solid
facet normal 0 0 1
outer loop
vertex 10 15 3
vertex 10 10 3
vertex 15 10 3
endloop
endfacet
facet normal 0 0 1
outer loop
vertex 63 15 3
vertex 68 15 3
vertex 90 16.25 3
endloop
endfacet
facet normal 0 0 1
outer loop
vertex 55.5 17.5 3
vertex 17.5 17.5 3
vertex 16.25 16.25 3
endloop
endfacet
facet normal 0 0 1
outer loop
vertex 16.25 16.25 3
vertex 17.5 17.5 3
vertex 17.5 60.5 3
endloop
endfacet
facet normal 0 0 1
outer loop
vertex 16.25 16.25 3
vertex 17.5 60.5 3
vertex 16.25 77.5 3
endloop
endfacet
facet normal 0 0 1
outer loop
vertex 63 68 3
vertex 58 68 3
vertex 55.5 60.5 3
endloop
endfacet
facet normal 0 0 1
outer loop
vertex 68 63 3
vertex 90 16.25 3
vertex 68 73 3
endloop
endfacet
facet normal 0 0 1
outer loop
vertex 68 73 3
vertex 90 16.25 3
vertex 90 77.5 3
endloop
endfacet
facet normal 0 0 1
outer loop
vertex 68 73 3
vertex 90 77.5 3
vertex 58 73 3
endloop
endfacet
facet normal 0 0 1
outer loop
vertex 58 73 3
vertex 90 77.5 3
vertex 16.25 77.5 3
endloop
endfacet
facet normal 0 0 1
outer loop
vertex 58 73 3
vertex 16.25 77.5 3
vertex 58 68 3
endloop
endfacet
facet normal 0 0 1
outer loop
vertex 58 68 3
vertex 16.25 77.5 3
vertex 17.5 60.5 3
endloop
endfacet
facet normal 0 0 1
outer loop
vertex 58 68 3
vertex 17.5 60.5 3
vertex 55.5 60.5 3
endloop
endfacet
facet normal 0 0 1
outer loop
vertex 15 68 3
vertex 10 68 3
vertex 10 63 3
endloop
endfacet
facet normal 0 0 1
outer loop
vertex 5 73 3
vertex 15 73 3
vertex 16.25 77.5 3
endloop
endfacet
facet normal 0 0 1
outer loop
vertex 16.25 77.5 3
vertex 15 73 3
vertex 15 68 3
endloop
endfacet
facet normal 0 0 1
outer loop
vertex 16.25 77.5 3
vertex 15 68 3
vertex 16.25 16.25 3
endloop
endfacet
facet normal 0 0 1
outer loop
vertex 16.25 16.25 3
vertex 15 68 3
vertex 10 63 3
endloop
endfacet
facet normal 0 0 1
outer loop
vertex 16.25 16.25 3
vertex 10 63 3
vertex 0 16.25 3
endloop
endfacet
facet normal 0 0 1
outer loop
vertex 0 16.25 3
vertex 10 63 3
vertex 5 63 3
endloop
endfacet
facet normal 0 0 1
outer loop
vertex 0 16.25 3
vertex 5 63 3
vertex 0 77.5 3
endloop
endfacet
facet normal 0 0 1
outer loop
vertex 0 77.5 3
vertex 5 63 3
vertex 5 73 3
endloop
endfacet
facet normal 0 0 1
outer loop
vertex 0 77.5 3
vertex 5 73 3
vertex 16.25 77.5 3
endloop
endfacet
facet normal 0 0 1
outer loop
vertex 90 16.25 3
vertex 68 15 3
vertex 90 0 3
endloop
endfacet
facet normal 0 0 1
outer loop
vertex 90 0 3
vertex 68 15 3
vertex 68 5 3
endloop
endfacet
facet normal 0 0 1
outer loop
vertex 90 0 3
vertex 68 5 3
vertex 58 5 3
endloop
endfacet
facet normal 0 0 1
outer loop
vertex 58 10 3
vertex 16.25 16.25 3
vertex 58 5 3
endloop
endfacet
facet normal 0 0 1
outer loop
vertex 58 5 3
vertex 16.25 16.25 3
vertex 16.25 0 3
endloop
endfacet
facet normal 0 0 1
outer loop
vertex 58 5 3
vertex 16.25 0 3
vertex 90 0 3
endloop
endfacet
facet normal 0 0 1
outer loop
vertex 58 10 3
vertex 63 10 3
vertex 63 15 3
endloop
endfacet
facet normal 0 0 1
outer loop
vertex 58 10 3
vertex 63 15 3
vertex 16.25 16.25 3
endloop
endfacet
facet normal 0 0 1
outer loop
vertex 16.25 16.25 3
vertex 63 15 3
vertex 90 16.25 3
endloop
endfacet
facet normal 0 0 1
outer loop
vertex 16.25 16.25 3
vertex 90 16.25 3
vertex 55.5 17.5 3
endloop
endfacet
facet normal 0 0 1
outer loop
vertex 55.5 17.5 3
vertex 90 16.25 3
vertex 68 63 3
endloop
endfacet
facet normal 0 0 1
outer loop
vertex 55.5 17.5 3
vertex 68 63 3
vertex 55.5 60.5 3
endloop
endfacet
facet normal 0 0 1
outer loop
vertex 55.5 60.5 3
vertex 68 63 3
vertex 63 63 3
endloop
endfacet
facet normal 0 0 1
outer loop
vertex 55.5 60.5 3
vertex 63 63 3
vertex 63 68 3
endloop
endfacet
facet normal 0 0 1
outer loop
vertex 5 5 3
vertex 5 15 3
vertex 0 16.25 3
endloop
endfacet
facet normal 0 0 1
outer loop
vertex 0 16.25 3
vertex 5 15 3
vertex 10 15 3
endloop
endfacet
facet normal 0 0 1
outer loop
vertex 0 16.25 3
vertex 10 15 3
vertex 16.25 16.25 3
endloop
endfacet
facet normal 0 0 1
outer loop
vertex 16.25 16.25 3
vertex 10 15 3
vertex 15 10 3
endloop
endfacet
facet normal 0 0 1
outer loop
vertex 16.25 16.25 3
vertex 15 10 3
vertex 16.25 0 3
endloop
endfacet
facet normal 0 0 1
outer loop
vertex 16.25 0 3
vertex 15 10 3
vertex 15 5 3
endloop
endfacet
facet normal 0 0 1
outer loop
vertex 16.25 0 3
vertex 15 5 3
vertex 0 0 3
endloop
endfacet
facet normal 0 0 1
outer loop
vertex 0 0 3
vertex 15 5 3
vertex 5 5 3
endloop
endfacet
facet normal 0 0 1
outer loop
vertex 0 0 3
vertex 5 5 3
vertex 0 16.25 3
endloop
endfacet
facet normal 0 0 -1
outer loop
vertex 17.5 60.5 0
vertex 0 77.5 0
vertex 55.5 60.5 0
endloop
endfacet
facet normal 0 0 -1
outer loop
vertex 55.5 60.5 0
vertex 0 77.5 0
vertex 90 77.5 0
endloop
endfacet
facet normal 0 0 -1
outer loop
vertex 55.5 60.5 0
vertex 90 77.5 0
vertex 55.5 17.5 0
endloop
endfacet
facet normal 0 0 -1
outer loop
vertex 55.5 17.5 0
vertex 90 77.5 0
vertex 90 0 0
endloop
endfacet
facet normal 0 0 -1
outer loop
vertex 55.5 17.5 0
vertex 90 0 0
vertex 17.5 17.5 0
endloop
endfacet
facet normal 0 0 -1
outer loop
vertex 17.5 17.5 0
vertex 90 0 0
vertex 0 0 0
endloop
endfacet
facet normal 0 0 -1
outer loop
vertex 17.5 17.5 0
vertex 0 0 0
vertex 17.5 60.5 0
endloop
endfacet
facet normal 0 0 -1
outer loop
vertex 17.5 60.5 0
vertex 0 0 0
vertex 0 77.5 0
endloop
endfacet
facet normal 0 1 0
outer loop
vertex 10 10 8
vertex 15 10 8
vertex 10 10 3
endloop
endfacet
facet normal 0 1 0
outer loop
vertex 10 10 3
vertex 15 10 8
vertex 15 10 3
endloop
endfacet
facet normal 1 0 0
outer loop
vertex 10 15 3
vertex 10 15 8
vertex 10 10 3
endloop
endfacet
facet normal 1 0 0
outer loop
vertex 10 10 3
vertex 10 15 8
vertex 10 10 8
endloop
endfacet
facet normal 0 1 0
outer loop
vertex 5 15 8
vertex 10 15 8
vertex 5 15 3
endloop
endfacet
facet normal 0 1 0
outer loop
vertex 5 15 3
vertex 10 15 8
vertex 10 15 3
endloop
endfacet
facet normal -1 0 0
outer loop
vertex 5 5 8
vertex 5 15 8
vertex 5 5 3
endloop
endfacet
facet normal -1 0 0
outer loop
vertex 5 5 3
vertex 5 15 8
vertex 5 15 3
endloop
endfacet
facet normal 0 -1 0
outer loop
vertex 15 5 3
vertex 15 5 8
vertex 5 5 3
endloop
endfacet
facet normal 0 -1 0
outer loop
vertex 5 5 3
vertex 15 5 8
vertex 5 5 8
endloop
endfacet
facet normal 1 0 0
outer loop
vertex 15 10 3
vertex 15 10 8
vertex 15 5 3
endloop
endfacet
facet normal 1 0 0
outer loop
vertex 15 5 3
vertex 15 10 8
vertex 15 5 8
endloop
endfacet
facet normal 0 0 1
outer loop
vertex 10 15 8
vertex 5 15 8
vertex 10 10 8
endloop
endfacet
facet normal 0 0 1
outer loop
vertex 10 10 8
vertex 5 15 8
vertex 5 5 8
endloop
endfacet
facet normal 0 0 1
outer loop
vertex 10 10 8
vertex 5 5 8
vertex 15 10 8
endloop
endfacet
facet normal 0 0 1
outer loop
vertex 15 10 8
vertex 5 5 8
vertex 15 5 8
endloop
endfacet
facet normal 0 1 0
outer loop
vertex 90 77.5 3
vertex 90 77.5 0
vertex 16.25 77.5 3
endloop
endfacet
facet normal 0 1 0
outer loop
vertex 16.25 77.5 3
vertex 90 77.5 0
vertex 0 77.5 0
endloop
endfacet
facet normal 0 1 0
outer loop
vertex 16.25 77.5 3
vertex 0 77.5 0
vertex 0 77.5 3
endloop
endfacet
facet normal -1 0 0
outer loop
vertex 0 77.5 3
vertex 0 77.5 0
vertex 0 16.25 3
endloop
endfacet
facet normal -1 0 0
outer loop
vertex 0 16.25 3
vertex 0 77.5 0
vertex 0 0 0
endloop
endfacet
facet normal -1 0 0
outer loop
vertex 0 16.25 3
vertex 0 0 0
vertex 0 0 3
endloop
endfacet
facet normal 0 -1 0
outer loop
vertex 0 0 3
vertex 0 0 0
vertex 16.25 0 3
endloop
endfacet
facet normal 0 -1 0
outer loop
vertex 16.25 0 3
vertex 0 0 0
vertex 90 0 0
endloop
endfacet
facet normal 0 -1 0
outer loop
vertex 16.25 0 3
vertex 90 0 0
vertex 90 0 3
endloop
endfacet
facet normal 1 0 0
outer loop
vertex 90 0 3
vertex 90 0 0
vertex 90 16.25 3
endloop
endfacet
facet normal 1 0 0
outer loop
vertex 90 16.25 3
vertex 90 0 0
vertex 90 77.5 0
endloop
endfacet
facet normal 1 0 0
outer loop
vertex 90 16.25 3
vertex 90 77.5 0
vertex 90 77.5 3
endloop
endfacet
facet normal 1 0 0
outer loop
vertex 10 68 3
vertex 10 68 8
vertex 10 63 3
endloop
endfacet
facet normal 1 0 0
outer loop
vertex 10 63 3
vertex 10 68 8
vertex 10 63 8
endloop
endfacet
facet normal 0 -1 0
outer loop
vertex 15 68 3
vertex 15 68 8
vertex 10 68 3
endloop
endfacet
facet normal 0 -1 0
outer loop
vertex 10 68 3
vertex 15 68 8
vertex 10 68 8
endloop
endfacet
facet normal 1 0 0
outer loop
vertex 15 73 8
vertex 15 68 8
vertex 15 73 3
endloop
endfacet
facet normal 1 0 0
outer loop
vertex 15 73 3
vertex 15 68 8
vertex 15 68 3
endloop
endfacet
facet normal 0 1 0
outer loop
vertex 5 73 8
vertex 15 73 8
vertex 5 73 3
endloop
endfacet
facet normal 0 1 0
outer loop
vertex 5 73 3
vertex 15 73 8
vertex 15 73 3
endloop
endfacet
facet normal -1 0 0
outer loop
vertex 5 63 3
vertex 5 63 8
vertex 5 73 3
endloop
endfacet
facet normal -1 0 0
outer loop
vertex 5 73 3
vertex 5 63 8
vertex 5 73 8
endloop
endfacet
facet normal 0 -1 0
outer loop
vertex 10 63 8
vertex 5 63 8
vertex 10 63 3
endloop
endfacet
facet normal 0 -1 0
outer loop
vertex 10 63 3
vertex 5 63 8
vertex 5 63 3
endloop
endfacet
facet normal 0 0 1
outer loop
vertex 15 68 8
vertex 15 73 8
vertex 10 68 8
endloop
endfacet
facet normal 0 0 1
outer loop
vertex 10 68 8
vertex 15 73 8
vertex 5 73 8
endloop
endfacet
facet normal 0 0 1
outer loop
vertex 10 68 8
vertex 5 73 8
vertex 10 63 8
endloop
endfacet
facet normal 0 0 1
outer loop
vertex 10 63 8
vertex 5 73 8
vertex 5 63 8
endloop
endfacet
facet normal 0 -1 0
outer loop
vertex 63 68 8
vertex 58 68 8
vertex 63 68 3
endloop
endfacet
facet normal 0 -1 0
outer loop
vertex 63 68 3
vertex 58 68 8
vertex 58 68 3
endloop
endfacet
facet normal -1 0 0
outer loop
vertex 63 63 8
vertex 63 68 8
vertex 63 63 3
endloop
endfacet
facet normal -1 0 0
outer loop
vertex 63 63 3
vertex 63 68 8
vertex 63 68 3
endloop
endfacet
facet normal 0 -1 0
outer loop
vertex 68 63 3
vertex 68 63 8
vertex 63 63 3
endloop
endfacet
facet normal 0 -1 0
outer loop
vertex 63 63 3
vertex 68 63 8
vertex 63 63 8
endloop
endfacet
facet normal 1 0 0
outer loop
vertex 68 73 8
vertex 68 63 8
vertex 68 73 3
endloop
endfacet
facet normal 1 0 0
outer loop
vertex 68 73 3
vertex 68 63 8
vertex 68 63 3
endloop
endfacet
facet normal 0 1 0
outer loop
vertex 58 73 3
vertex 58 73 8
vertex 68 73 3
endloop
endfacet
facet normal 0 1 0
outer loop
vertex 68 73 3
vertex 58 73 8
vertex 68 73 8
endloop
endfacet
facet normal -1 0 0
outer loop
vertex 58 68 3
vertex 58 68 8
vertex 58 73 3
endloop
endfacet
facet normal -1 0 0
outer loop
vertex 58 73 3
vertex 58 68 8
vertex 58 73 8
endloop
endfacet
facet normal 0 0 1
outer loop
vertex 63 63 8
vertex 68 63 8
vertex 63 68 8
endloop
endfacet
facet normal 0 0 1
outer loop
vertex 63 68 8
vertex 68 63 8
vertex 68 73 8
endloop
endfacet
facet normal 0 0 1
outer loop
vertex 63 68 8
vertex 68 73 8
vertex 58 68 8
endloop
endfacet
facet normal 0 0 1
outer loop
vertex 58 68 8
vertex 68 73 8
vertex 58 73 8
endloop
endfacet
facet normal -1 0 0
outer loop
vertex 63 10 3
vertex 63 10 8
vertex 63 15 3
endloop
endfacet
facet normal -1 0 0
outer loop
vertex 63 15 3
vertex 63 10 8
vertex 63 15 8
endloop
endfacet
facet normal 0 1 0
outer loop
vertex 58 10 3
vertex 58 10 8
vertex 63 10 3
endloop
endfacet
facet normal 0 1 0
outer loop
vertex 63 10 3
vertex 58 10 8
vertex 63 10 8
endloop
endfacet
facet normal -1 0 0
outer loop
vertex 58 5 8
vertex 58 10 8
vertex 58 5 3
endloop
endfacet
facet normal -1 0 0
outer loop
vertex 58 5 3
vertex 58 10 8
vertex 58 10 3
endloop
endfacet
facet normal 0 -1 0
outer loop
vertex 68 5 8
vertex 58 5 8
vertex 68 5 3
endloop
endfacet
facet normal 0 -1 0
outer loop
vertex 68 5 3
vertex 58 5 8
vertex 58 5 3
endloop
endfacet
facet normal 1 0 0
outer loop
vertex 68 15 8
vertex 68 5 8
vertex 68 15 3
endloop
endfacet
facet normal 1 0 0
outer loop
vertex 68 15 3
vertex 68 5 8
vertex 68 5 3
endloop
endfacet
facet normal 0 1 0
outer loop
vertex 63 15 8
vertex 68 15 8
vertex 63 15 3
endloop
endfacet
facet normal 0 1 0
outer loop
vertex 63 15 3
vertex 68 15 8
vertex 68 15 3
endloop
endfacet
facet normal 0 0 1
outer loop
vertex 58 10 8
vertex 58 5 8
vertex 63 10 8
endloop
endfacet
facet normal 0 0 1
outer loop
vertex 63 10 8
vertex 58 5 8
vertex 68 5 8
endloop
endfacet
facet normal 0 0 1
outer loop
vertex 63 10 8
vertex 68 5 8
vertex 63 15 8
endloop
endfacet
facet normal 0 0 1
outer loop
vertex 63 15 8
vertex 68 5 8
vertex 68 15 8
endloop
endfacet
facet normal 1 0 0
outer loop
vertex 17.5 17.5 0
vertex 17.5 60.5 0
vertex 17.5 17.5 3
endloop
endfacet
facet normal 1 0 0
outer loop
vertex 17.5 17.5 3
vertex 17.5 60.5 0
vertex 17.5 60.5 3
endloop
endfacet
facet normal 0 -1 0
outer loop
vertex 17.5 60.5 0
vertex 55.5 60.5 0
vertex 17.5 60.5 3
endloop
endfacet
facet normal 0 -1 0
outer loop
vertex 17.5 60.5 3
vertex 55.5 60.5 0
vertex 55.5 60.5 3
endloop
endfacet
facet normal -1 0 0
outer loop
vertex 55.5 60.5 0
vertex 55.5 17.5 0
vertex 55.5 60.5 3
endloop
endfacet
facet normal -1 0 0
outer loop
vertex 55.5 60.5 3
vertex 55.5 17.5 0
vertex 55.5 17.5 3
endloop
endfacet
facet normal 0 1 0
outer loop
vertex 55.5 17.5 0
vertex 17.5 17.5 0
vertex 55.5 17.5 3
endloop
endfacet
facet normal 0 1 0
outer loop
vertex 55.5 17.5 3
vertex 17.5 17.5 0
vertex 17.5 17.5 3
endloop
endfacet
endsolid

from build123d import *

# Parameters (mm, degrees)
BOSS_EXTRUDE2_DEPTH   = 8
BOSS_EXTRUDE2_2_DEPTH = 8
BOSS_EXTRUDE2_3_DEPTH = 8
BOSS_EXTRUDE2_4_DEPTH = 8
SKETCH1_4_W           = 90
SKETCH1_4_H           = 77.5
BOSS_EXTRUDE3_DEPTH   = 3
SKETCH4_W             = 38
SKETCH4_H             = 43
CUT_EXTRUDE2_DEPTH    = 3


with BuildPart() as part:
    # Sketch1 → Boss-Extrude2 (new body)
    with BuildSketch(Plane.XY):
        Polygon((15, 5), (15, 10), (10, 10), (10, 15), (5, 15), (5, 5), align=None)
    extrude(amount=BOSS_EXTRUDE2_DEPTH)



with BuildPart() as body_2:
    # Sketch1 → Boss-Extrude2 2 (new body)
    with BuildSketch(Plane.XY):
        Polygon((58, 73), (58, 68), (63, 68), (63, 63), (68, 63), (68, 73), align=None)
    extrude(amount=BOSS_EXTRUDE2_2_DEPTH)


with BuildPart() as body_3:
    # Sketch1 → Boss-Extrude2 3 (new body)
    with BuildSketch(Plane.XY):
        Polygon((63, 10), (58, 10), (58, 5), (68, 5), (68, 15), (63, 15), align=None)
    extrude(amount=BOSS_EXTRUDE2_3_DEPTH)


with BuildPart() as body_4:
    # Sketch1 → Boss-Extrude2 4 (new body)
    with BuildSketch(Plane.XY):
        Polygon((10, 68), (15, 68), (15, 73), (5, 73), (5, 63), (10, 63), align=None)
    extrude(amount=BOSS_EXTRUDE2_4_DEPTH)


with BuildPart() as part_1:
    add(part.part)

    add(body_2.part)  # Boss-Extrude3 merges body 2

    add(body_3.part)  # Boss-Extrude3 merges body 3

    add(body_4.part)  # Boss-Extrude3 merges body 4
    # Sketch1<4> → Boss-Extrude3 (add)
    with BuildSketch(Plane.XY):
        with Locations((45, 38.75)):
            Rectangle(SKETCH1_4_W, SKETCH1_4_H)
        Polygon((10, 10), (15, 10), (15, 5), (5, 5), (5, 15), (10, 15), align=None, mode=Mode.SUBTRACT)
        Polygon((5, 63), (5, 73), (15, 73), (15, 68), (10, 68), (10, 63), align=None, mode=Mode.SUBTRACT)
        Polygon((58, 68), (58, 73), (68, 73), (68, 63), (63, 63), (63, 68), align=None, mode=Mode.SUBTRACT)
        Polygon((58, 5), (58, 10), (63, 10), (63, 15), (68, 15), (68, 5), align=None, mode=Mode.SUBTRACT)
    extrude(amount=BOSS_EXTRUDE3_DEPTH)

    # Sketch4 → Cut-Extrude2 (cut)
    with BuildSketch(Plane.XY.offset(3)):
        with Locations((36.5, 39)):
            Rectangle(SKETCH4_W, SKETCH4_H)
    extrude(amount=-CUT_EXTRUDE2_DEPTH, mode=Mode.SUBTRACT)


solid = part_1.part
